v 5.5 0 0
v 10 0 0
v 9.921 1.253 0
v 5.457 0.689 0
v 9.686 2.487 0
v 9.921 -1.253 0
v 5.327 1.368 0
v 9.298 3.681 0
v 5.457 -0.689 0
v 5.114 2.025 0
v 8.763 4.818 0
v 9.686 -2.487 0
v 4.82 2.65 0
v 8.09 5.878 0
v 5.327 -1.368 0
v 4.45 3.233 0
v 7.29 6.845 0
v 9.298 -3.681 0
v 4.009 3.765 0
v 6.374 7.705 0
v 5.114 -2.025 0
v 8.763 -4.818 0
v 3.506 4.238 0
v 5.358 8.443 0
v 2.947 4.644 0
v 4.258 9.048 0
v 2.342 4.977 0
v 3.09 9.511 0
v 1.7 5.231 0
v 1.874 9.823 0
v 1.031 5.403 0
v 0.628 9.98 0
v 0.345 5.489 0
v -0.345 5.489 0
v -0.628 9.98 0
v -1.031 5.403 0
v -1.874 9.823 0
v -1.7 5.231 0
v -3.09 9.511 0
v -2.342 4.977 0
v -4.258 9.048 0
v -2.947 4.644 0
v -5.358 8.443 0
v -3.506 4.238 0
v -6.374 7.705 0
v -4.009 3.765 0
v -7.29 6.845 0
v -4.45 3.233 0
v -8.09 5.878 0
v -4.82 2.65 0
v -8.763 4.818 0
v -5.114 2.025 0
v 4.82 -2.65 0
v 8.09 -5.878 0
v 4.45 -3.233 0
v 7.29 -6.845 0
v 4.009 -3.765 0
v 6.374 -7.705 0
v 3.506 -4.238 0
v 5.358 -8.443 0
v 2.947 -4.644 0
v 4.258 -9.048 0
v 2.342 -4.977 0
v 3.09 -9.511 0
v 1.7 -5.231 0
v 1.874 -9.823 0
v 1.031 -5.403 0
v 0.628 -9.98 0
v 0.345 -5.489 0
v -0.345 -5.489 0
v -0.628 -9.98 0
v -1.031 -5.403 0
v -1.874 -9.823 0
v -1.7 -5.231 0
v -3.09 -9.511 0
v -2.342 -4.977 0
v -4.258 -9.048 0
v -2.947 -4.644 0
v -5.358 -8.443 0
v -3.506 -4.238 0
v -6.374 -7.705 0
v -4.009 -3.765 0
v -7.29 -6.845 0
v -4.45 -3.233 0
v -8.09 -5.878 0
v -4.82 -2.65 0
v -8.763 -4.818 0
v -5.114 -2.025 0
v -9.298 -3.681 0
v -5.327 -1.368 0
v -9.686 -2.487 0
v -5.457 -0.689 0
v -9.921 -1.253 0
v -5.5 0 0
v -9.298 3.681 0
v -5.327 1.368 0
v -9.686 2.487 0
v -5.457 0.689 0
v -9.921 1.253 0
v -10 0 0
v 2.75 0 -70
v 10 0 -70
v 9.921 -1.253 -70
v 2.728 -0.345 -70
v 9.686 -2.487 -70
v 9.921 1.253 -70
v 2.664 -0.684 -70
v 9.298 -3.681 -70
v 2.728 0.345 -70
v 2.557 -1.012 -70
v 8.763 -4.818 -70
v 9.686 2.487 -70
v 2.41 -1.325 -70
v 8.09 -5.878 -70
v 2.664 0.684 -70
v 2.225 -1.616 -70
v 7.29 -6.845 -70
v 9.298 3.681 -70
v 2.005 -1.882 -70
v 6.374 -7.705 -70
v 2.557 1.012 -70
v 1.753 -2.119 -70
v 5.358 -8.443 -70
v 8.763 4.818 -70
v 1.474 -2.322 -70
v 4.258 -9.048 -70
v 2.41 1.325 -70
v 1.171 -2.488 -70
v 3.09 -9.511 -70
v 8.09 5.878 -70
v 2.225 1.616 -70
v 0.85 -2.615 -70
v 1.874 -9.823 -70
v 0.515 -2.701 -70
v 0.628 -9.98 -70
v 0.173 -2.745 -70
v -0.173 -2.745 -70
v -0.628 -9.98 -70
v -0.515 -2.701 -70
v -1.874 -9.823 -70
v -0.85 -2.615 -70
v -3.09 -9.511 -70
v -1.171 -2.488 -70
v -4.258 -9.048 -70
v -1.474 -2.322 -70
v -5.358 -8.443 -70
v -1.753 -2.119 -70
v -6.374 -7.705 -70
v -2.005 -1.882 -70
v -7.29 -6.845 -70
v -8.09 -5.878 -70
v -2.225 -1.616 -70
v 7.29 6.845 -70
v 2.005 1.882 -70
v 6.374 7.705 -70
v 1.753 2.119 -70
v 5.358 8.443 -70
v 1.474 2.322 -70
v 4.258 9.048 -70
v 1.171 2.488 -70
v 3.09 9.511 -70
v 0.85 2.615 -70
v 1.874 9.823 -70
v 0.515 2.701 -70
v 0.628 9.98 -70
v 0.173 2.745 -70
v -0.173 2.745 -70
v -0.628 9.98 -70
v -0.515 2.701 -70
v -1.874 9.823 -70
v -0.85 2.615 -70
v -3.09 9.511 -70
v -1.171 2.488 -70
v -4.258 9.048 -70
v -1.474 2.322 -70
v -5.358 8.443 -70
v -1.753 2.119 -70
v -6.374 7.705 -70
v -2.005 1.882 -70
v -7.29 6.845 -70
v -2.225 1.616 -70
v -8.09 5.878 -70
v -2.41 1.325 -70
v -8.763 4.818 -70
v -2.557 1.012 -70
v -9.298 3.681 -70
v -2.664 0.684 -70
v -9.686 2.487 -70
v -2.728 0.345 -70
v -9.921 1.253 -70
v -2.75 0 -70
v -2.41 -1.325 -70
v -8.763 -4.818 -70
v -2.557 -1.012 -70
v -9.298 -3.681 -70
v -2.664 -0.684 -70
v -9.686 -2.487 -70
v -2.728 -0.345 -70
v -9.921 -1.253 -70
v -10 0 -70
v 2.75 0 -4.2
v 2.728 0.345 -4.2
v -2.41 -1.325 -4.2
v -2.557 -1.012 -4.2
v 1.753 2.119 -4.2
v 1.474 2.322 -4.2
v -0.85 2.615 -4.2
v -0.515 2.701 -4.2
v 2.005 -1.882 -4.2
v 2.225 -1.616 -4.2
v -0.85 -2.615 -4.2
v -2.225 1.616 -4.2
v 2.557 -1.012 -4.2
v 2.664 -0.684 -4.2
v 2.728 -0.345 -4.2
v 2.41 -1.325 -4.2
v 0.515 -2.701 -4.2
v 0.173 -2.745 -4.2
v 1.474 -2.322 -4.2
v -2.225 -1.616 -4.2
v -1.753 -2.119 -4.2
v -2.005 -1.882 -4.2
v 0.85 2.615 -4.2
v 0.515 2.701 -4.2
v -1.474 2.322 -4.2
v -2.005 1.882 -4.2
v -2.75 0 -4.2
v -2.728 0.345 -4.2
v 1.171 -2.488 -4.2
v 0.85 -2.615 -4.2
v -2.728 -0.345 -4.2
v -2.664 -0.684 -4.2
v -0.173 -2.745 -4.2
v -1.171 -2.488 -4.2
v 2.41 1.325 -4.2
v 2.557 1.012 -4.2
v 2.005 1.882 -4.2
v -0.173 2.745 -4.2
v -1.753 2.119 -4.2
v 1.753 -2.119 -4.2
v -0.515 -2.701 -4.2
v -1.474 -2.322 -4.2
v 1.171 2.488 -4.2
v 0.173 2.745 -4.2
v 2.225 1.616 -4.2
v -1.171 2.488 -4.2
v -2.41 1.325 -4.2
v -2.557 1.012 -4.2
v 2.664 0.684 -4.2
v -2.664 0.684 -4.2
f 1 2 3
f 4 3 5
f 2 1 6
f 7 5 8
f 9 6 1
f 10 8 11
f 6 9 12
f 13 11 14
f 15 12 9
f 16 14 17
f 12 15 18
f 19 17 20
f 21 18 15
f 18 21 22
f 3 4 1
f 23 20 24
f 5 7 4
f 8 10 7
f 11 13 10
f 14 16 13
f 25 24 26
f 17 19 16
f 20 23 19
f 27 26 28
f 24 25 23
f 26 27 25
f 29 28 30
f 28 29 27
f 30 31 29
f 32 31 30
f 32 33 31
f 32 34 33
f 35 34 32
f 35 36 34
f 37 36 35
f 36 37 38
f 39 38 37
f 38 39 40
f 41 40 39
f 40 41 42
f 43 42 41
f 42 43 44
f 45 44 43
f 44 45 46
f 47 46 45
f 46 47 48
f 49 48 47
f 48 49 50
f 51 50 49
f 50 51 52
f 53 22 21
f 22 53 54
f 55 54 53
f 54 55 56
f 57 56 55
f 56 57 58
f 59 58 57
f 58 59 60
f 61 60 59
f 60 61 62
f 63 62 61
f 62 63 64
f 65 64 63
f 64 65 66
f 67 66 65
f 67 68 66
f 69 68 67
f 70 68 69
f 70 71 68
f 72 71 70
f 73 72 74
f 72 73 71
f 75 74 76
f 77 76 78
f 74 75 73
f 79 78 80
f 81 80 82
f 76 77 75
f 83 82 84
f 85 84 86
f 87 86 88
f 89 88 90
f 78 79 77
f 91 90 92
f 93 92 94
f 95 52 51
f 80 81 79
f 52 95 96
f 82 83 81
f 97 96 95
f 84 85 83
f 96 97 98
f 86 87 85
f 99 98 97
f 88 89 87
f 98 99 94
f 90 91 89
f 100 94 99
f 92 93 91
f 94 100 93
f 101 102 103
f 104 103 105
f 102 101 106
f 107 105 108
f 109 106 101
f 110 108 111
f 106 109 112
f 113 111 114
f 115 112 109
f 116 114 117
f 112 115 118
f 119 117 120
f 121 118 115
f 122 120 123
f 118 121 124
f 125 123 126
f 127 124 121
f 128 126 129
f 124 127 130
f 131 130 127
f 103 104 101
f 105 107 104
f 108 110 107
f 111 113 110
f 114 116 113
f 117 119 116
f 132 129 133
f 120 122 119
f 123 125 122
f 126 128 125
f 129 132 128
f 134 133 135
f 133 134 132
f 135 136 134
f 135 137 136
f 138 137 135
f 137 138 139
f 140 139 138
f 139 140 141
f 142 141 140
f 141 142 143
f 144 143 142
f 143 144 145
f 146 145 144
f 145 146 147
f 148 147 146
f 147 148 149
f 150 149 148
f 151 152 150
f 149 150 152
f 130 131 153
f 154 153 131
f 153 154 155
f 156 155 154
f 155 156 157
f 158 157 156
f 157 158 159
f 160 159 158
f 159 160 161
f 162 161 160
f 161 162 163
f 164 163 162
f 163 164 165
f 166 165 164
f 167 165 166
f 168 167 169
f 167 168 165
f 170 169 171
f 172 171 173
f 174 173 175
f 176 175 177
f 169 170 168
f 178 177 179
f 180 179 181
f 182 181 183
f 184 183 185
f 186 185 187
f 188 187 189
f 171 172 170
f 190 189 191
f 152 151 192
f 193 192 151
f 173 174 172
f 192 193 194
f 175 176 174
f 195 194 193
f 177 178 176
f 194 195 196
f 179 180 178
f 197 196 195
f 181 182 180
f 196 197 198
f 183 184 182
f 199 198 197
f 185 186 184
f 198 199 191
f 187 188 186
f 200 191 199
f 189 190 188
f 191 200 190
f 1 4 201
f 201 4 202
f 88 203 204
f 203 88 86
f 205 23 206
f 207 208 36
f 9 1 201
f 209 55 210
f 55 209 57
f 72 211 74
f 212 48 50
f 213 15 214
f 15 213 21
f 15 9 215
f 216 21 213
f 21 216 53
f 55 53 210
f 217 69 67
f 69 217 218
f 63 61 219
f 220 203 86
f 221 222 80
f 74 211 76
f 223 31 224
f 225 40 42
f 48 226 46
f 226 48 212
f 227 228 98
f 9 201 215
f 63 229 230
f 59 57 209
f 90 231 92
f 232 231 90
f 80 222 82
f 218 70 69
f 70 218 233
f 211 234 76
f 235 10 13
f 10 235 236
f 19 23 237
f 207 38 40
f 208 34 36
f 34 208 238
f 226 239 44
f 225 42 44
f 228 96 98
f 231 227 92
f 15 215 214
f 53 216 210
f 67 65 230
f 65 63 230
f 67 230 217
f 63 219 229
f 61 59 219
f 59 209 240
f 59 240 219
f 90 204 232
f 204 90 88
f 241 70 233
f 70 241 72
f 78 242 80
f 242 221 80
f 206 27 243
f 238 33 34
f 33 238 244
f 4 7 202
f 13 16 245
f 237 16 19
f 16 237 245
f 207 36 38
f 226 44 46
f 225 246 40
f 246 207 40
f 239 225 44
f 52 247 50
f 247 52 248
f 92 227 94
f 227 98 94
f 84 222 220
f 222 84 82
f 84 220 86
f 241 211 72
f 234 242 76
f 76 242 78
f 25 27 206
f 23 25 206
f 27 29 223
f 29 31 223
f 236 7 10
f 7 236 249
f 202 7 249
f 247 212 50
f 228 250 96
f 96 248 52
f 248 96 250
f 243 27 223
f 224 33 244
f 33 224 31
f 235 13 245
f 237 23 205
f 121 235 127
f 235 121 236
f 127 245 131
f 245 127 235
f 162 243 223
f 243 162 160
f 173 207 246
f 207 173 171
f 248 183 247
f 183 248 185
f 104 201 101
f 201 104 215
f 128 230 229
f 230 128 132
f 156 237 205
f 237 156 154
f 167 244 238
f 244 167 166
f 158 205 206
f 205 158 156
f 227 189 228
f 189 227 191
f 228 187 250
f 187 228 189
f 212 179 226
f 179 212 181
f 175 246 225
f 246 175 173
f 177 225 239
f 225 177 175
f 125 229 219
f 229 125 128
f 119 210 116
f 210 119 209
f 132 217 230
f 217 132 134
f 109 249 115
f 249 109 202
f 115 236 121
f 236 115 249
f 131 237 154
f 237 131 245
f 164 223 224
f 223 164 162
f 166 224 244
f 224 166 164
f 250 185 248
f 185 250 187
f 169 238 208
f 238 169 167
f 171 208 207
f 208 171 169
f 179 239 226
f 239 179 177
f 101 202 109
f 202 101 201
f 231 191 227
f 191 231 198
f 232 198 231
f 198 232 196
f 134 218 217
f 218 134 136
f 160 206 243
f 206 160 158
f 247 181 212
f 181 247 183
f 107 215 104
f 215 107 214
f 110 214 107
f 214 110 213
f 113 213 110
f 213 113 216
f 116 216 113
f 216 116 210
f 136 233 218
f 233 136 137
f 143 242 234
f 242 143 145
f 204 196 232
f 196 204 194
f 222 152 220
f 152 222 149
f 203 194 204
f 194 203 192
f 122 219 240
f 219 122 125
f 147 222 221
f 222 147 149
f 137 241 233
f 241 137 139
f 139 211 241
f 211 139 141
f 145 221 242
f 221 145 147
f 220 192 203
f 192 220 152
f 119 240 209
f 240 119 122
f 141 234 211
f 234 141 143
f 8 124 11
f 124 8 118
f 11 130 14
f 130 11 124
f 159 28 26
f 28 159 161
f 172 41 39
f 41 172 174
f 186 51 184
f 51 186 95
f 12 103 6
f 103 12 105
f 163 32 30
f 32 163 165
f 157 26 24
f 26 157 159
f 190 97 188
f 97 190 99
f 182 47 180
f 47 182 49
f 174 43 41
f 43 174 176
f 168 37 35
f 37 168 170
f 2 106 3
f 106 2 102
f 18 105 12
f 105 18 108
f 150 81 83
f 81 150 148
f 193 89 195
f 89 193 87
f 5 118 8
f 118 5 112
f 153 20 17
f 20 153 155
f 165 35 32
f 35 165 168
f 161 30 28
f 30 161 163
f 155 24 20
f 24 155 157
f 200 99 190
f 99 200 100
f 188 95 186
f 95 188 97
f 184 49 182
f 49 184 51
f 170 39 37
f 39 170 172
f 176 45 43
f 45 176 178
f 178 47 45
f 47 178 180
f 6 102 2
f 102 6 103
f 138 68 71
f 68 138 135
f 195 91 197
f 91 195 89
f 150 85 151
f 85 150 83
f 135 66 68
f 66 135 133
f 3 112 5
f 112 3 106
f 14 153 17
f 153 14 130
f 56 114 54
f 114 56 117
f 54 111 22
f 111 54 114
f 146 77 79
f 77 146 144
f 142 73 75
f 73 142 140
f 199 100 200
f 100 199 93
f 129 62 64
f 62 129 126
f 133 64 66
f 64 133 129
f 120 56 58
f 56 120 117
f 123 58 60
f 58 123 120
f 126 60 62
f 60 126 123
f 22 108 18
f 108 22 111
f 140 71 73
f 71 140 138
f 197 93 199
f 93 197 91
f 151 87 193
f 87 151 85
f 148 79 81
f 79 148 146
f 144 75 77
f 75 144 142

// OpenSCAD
$fn = 50;


difference() {
	union() {
		translate(v = [0, 0, -70.0000000000]) {
			cylinder(h = 70, r = 10.0000000000);
		}
		cylinder(h = 0, r = 20.0000000000);
	}
	union() {
		translate(v = [0, 0, 0]) {
			rotate(a = [0, 0, 0]) {
				difference() {
					union() {
						#translate(v = [0, 0, -70.0000000000]) {
							cylinder(h = 70, r = 2.2500000000);
						}
						#translate(v = [0, 0, -4.2000000000]) {
							cylinder(h = 4.2000000000, r = 10.0000000000, r1 = 2.7500000000, r2 = 5.5000000000);
						}
						#translate(v = [0, 0, -70.0000000000]) {
							cylinder(h = 70, r = 2.7500000000);
						}
						#translate(v = [0, 0, -70.0000000000]) {
							cylinder(h = 70, r = 2.2500000000);
						}
					}
					union();
				}
			}
		}
	}
}
